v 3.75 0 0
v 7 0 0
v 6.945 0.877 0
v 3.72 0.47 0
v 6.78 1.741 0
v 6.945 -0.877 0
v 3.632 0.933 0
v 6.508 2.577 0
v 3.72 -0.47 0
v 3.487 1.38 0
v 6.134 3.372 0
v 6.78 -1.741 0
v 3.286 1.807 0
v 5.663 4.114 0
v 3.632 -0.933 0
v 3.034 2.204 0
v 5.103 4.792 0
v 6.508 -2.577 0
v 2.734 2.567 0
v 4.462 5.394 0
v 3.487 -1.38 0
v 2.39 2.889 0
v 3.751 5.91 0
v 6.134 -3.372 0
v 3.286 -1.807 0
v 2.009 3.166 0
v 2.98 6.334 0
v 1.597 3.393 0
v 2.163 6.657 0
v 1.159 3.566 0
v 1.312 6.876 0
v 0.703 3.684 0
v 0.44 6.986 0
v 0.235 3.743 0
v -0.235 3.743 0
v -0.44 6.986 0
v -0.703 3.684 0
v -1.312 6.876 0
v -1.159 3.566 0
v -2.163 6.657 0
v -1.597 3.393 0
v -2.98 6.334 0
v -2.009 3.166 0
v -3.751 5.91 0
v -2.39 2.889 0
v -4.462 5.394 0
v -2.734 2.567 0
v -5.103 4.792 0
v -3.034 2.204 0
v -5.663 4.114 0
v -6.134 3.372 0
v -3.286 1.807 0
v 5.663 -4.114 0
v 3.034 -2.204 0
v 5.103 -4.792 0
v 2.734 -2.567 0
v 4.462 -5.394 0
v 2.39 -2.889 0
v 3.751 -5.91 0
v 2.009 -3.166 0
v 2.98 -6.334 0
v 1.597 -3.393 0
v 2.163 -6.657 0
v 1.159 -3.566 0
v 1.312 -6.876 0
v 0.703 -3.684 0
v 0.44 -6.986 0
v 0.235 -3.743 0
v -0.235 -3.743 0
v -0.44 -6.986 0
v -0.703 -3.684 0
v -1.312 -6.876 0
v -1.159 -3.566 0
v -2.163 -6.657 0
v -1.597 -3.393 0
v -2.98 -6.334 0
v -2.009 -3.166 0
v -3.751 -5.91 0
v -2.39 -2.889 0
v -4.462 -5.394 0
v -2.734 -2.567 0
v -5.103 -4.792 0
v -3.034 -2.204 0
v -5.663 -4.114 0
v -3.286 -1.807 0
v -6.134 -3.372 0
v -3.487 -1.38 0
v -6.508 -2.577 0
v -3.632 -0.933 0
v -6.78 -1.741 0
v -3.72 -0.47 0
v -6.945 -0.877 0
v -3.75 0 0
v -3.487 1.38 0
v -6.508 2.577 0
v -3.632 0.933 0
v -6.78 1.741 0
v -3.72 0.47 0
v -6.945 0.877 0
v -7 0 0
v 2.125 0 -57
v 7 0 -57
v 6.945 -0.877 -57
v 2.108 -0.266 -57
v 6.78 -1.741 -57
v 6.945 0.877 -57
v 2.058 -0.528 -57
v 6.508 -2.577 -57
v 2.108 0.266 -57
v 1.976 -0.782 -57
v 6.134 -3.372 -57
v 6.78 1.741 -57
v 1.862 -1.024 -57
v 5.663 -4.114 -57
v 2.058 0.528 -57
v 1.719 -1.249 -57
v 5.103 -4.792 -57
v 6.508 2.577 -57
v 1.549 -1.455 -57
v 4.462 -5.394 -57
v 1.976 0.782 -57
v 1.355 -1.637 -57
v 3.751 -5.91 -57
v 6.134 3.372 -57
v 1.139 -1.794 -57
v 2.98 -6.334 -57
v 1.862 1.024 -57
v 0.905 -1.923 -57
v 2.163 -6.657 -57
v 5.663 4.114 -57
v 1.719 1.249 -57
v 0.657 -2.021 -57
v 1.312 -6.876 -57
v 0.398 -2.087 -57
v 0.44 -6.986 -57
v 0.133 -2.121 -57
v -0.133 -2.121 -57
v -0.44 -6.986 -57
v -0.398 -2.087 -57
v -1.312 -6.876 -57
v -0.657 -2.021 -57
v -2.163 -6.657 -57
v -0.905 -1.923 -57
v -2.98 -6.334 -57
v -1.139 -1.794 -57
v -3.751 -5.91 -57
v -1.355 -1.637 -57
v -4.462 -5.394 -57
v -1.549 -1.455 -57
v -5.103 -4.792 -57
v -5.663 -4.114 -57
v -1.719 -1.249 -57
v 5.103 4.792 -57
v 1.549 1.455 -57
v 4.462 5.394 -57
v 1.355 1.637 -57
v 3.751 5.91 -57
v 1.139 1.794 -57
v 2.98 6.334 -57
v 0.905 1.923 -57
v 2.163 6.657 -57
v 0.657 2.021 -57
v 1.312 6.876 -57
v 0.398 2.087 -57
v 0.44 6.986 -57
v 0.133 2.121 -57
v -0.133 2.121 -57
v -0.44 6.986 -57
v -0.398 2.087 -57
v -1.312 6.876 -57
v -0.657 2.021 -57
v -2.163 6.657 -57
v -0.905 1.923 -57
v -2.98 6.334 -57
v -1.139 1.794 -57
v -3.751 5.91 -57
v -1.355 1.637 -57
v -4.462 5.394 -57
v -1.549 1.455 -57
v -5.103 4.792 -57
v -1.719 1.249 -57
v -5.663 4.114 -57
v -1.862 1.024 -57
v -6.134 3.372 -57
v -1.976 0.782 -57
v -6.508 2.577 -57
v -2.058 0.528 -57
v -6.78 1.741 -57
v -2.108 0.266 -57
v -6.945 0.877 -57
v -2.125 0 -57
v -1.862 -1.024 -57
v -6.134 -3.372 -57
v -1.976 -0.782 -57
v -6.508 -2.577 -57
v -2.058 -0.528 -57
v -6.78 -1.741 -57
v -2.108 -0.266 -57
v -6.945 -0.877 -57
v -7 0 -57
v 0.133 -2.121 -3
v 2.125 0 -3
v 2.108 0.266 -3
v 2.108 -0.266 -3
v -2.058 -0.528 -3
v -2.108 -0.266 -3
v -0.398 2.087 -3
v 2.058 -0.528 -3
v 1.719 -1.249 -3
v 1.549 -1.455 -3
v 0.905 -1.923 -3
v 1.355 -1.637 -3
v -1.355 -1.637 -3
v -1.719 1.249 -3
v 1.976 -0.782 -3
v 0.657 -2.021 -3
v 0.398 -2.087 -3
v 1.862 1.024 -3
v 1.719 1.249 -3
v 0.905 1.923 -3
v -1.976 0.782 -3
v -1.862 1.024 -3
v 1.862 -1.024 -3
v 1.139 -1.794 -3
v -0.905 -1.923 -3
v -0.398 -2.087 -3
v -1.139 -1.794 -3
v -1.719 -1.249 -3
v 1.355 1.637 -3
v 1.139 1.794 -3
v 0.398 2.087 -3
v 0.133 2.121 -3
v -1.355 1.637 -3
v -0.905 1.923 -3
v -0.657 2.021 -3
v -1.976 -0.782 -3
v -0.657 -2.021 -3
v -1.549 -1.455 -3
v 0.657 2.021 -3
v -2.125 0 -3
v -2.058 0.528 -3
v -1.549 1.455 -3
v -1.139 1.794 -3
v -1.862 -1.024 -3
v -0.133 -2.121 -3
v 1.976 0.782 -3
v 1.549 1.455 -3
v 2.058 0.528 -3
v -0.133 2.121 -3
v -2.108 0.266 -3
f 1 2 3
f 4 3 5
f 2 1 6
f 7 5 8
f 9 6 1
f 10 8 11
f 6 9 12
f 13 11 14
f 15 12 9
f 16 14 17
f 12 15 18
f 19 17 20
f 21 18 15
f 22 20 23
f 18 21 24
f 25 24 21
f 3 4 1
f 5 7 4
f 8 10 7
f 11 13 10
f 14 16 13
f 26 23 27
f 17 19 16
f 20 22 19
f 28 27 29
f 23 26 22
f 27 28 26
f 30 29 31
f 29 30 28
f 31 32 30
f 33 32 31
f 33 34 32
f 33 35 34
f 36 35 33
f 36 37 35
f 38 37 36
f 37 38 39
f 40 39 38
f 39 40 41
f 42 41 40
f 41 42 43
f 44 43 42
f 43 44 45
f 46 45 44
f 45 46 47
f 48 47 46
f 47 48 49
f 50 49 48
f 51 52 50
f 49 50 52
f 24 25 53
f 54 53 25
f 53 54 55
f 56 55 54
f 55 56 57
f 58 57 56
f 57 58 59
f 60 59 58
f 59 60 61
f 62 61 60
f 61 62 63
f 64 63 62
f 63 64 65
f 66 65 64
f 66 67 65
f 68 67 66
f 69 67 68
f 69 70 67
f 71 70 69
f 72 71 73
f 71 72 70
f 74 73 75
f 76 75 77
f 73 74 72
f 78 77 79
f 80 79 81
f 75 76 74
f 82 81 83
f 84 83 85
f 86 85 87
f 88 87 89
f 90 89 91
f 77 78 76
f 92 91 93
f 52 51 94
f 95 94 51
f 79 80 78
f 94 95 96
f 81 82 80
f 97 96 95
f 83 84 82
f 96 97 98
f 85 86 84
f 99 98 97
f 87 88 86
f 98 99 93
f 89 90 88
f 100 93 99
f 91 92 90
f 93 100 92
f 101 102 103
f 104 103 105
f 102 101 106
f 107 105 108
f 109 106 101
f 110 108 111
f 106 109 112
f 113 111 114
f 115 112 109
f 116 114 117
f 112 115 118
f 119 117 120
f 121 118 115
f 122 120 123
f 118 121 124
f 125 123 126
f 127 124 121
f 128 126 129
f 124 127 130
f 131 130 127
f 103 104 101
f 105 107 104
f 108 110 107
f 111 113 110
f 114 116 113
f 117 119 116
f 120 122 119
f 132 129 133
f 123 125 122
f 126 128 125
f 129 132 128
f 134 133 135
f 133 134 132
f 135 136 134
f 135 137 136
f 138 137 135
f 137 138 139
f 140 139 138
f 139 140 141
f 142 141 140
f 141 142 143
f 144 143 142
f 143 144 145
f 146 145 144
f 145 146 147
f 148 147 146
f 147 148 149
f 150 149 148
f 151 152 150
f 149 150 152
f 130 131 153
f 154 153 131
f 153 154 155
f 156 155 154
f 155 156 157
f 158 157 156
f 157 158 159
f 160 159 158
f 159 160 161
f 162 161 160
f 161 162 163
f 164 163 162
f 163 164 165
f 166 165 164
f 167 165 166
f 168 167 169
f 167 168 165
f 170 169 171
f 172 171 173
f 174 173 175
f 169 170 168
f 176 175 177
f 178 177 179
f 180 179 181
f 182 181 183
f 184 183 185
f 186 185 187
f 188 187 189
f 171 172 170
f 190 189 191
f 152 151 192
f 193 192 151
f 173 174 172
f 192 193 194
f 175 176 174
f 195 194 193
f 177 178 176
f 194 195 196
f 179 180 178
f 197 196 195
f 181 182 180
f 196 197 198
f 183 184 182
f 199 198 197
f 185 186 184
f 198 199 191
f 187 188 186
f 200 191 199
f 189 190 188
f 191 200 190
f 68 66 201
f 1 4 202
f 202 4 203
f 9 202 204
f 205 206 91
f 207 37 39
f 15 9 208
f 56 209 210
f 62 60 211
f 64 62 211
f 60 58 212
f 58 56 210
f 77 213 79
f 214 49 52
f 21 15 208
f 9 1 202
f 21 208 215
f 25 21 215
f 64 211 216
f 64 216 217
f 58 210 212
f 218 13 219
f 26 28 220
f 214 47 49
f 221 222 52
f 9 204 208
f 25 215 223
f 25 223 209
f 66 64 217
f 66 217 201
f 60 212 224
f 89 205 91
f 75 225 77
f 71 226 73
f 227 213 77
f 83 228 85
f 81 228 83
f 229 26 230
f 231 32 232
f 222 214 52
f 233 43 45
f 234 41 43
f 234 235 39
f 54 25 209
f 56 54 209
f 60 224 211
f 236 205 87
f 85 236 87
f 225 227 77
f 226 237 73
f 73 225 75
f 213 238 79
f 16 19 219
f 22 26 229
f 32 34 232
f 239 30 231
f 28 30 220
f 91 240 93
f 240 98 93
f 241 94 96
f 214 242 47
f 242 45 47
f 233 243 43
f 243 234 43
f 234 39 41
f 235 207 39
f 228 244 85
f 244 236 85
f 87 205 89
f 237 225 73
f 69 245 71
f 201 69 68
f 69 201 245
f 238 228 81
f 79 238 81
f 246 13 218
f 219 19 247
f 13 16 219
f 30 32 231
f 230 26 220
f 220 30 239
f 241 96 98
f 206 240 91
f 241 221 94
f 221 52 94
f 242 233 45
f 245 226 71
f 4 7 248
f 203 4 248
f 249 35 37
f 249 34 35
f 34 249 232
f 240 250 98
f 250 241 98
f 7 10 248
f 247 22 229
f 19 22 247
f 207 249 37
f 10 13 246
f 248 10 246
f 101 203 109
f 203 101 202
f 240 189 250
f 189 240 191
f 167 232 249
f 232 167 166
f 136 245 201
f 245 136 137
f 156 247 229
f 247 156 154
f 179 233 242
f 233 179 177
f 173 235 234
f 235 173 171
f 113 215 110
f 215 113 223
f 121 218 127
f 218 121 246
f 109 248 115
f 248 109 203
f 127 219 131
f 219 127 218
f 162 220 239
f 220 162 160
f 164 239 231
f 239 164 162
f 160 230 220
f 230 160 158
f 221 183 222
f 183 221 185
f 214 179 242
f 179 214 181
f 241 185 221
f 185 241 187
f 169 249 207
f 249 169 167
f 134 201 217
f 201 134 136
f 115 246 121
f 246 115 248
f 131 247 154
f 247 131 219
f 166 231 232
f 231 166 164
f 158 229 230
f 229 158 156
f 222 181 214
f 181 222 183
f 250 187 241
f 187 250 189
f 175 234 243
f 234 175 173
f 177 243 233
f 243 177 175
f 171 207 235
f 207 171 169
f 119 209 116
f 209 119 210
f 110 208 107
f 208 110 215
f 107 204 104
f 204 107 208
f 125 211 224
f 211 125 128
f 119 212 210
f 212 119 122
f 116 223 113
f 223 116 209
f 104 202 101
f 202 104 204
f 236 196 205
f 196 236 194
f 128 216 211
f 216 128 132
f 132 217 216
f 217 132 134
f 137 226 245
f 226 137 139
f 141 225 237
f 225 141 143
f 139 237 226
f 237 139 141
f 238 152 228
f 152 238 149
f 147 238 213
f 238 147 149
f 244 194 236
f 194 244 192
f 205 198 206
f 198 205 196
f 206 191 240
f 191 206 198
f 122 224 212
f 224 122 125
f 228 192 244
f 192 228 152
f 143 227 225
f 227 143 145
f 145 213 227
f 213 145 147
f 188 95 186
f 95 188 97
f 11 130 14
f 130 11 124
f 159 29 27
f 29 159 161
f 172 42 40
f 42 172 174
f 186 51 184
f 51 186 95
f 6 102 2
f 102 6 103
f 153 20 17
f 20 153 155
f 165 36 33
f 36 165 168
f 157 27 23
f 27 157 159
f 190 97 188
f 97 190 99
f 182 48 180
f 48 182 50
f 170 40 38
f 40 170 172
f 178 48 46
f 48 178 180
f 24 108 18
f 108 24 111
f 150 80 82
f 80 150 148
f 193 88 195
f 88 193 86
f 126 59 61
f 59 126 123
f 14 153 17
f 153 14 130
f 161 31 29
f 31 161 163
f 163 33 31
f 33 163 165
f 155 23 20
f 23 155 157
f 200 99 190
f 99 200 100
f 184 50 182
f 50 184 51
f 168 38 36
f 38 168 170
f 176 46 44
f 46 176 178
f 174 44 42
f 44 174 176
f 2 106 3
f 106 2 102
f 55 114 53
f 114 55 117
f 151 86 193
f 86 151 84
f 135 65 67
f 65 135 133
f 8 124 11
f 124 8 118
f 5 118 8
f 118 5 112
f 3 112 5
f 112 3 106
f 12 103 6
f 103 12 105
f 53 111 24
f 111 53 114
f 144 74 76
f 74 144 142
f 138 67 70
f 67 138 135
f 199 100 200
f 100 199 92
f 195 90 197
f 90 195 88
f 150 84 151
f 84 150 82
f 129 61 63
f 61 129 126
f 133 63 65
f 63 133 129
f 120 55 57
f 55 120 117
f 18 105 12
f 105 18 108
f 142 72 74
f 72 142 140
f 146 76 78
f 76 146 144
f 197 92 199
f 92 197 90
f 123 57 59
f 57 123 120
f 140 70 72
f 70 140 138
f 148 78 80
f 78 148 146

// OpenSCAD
$fn = 50;


difference() {
	union() {
		translate(v = [0, 0, -57.0000000000]) {
			cylinder(h = 57, r = 7.0000000000);
		}
	}
	union() {
		translate(v = [0, 0, 0]) {
			rotate(a = [0, 0, 0]) {
				difference() {
					union() {
						#translate(v = [0, 0, -57.0000000000]) {
							cylinder(h = 57, r = 2.0000000000);
						}
						#translate(v = [0, 0, -3]) {
							cylinder(h = 3, r1 = 2.1250000000, r2 = 3.7500000000);
						}
						#translate(v = [0, 0, -57.0000000000]) {
							cylinder(h = 57, r = 2.1250000000);
						}
						#translate(v = [0, 0, -57.0000000000]) {
							cylinder(h = 57, r = 2.0000000000);
						}
					}
					union();
				}
			}
		}
	}
}
